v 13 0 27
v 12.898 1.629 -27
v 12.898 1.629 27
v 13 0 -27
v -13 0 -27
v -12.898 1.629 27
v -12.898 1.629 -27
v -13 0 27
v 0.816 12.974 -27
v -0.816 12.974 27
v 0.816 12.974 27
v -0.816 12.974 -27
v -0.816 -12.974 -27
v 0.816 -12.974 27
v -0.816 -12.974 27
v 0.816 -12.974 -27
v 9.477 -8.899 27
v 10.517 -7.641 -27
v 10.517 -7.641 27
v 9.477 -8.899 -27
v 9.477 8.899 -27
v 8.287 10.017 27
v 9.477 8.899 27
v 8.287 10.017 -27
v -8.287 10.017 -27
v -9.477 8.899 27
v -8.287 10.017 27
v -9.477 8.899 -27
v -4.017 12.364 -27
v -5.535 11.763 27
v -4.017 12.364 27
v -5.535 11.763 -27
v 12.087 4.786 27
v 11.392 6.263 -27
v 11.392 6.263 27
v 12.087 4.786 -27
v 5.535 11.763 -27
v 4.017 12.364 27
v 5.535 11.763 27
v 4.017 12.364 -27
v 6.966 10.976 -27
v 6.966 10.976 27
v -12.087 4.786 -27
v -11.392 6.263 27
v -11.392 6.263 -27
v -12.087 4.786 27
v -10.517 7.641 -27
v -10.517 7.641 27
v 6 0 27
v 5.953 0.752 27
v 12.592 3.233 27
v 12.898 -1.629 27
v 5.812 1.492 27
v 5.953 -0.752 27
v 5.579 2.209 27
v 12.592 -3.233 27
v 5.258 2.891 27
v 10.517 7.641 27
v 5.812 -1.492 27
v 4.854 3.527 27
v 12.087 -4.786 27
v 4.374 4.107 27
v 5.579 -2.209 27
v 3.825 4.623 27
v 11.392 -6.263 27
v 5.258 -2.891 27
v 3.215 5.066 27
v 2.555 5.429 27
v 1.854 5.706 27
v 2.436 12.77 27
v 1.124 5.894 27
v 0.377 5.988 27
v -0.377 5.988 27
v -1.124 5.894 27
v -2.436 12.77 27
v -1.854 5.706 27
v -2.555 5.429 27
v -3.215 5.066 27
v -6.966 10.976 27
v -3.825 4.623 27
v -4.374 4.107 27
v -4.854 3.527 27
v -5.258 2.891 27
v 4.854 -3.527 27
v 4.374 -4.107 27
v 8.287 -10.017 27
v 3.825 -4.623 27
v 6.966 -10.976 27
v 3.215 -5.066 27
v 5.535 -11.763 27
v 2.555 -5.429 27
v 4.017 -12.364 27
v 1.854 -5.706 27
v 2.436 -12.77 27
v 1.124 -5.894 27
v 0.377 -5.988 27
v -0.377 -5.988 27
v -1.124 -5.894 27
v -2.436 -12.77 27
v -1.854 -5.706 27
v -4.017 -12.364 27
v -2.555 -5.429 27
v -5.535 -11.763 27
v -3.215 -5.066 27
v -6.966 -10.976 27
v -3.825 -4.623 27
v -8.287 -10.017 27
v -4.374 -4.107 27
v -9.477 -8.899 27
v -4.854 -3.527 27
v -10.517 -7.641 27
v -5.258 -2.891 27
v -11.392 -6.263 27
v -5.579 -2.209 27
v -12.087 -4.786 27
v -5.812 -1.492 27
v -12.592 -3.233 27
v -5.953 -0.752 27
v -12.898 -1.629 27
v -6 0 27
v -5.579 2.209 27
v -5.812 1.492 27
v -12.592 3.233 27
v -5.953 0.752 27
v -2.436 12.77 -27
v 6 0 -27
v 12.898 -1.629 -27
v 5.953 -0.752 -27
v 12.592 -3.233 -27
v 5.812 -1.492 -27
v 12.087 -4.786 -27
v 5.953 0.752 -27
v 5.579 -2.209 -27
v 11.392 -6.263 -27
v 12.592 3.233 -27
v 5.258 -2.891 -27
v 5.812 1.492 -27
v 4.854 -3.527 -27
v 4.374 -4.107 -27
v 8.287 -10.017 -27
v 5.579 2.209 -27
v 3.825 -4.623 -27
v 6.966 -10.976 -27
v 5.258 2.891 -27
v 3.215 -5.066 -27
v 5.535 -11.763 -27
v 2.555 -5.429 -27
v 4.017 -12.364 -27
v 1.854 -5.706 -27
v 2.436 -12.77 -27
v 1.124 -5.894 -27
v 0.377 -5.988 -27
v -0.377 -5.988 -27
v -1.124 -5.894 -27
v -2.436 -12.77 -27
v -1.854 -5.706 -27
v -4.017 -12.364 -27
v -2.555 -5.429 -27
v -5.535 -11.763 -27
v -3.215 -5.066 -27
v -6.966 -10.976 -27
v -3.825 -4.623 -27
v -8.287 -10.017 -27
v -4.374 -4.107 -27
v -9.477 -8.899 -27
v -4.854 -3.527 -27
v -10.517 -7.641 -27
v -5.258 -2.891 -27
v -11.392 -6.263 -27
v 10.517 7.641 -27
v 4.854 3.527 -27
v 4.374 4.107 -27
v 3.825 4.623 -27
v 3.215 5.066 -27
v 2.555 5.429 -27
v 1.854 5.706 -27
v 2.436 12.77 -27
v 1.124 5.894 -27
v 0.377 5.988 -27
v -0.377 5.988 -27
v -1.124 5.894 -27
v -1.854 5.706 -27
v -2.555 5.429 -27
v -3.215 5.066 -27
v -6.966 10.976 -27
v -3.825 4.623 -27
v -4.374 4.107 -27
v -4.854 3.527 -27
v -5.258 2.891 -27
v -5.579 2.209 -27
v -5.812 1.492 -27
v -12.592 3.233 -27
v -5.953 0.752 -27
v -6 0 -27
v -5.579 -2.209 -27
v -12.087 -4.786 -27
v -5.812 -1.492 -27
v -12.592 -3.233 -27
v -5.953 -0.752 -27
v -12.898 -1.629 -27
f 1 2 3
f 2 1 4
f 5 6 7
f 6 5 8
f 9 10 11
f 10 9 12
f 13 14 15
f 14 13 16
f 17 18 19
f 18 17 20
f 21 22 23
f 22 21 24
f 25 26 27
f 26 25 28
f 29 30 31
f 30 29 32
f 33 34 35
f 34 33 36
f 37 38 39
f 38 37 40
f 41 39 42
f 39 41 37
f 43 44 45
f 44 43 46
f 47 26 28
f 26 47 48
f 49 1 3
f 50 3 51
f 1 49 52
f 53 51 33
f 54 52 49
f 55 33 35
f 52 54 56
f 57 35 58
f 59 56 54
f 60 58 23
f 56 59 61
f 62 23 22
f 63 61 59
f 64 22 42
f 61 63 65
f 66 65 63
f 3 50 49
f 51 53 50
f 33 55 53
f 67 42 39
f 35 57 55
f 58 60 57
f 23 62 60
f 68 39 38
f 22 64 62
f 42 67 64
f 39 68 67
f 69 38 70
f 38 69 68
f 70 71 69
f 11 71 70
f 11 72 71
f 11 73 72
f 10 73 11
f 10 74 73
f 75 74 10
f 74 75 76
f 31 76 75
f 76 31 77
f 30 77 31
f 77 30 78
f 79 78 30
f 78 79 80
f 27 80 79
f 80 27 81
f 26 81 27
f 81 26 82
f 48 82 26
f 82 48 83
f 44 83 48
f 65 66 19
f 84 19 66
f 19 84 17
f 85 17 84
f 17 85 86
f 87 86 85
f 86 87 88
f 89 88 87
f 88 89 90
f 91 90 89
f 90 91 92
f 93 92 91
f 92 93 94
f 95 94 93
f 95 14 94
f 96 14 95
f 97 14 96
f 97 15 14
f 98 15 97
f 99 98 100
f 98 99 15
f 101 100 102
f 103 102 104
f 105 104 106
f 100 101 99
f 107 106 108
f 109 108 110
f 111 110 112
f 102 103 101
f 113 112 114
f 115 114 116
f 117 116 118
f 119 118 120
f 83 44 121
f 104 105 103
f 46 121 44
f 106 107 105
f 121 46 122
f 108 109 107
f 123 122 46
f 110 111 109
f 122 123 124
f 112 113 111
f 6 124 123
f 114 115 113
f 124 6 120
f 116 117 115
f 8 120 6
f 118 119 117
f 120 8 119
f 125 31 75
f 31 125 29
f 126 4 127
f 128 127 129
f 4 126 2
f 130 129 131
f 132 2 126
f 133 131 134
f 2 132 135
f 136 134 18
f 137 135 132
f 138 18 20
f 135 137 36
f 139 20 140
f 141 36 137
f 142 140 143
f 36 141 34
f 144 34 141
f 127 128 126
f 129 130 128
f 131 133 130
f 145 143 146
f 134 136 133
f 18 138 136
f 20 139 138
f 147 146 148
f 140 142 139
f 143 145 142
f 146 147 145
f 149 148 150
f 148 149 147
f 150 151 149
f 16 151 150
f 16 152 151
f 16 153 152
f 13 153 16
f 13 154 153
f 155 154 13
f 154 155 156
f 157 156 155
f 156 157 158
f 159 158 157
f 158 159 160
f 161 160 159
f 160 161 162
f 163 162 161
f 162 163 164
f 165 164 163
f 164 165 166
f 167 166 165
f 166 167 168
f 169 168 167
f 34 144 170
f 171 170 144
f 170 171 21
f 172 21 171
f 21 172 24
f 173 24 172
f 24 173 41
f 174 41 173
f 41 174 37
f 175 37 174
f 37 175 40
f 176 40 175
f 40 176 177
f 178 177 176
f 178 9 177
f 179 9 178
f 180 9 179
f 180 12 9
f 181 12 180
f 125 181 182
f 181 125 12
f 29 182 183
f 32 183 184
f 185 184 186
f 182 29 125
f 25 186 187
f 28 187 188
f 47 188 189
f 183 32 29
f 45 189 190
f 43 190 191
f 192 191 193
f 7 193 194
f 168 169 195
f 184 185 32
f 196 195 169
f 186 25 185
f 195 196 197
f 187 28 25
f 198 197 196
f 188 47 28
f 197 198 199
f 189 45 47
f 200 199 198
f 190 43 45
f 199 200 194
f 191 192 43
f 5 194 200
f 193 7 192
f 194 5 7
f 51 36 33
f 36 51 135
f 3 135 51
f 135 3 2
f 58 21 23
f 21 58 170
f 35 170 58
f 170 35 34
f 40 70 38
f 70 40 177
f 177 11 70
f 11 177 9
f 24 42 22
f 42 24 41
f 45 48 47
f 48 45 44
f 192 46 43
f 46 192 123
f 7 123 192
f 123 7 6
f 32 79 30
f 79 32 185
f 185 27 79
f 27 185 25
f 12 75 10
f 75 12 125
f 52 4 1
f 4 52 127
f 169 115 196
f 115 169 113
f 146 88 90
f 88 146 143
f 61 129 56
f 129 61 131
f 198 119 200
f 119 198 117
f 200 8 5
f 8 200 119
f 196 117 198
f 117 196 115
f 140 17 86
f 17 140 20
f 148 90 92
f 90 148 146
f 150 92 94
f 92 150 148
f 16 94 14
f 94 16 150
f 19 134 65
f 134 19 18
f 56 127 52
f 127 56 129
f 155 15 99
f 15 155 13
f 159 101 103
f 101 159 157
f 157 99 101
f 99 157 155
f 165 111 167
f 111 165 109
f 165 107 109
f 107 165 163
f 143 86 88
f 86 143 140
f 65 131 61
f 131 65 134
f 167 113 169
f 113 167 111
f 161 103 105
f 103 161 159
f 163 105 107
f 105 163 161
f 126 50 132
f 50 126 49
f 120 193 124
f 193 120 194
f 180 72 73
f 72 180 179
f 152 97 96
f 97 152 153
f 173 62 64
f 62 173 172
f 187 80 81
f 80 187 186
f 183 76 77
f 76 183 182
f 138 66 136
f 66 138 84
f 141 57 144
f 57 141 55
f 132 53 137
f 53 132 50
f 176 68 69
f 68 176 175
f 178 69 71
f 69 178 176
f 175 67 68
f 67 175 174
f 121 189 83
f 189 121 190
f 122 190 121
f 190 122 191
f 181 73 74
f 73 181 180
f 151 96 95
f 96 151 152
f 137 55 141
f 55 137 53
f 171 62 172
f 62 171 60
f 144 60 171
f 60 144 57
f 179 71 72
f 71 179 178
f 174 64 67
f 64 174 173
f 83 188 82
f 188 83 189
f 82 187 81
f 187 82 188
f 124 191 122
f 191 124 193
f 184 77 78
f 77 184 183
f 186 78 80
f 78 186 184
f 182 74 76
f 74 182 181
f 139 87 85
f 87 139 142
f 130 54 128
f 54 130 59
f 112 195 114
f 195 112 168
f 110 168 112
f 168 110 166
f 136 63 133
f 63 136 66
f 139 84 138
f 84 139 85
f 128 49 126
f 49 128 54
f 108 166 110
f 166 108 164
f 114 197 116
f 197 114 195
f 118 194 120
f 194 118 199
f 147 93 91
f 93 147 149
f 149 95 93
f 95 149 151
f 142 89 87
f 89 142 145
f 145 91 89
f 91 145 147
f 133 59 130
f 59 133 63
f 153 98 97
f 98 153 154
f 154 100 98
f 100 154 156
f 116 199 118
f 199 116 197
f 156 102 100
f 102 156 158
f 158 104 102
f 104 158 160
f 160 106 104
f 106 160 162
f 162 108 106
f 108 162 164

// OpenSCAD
$fn = 50;


difference() {
	union() {
		translate(v = [0, 0, -27.0000000000]) {
			cylinder(h = 54, r = 13.0000000000);
		}
	}
	union() {
		translate(v = [0, 0, -100.0000000000]) {
			cylinder(h = 200, r = 6);
		}
	}
}
